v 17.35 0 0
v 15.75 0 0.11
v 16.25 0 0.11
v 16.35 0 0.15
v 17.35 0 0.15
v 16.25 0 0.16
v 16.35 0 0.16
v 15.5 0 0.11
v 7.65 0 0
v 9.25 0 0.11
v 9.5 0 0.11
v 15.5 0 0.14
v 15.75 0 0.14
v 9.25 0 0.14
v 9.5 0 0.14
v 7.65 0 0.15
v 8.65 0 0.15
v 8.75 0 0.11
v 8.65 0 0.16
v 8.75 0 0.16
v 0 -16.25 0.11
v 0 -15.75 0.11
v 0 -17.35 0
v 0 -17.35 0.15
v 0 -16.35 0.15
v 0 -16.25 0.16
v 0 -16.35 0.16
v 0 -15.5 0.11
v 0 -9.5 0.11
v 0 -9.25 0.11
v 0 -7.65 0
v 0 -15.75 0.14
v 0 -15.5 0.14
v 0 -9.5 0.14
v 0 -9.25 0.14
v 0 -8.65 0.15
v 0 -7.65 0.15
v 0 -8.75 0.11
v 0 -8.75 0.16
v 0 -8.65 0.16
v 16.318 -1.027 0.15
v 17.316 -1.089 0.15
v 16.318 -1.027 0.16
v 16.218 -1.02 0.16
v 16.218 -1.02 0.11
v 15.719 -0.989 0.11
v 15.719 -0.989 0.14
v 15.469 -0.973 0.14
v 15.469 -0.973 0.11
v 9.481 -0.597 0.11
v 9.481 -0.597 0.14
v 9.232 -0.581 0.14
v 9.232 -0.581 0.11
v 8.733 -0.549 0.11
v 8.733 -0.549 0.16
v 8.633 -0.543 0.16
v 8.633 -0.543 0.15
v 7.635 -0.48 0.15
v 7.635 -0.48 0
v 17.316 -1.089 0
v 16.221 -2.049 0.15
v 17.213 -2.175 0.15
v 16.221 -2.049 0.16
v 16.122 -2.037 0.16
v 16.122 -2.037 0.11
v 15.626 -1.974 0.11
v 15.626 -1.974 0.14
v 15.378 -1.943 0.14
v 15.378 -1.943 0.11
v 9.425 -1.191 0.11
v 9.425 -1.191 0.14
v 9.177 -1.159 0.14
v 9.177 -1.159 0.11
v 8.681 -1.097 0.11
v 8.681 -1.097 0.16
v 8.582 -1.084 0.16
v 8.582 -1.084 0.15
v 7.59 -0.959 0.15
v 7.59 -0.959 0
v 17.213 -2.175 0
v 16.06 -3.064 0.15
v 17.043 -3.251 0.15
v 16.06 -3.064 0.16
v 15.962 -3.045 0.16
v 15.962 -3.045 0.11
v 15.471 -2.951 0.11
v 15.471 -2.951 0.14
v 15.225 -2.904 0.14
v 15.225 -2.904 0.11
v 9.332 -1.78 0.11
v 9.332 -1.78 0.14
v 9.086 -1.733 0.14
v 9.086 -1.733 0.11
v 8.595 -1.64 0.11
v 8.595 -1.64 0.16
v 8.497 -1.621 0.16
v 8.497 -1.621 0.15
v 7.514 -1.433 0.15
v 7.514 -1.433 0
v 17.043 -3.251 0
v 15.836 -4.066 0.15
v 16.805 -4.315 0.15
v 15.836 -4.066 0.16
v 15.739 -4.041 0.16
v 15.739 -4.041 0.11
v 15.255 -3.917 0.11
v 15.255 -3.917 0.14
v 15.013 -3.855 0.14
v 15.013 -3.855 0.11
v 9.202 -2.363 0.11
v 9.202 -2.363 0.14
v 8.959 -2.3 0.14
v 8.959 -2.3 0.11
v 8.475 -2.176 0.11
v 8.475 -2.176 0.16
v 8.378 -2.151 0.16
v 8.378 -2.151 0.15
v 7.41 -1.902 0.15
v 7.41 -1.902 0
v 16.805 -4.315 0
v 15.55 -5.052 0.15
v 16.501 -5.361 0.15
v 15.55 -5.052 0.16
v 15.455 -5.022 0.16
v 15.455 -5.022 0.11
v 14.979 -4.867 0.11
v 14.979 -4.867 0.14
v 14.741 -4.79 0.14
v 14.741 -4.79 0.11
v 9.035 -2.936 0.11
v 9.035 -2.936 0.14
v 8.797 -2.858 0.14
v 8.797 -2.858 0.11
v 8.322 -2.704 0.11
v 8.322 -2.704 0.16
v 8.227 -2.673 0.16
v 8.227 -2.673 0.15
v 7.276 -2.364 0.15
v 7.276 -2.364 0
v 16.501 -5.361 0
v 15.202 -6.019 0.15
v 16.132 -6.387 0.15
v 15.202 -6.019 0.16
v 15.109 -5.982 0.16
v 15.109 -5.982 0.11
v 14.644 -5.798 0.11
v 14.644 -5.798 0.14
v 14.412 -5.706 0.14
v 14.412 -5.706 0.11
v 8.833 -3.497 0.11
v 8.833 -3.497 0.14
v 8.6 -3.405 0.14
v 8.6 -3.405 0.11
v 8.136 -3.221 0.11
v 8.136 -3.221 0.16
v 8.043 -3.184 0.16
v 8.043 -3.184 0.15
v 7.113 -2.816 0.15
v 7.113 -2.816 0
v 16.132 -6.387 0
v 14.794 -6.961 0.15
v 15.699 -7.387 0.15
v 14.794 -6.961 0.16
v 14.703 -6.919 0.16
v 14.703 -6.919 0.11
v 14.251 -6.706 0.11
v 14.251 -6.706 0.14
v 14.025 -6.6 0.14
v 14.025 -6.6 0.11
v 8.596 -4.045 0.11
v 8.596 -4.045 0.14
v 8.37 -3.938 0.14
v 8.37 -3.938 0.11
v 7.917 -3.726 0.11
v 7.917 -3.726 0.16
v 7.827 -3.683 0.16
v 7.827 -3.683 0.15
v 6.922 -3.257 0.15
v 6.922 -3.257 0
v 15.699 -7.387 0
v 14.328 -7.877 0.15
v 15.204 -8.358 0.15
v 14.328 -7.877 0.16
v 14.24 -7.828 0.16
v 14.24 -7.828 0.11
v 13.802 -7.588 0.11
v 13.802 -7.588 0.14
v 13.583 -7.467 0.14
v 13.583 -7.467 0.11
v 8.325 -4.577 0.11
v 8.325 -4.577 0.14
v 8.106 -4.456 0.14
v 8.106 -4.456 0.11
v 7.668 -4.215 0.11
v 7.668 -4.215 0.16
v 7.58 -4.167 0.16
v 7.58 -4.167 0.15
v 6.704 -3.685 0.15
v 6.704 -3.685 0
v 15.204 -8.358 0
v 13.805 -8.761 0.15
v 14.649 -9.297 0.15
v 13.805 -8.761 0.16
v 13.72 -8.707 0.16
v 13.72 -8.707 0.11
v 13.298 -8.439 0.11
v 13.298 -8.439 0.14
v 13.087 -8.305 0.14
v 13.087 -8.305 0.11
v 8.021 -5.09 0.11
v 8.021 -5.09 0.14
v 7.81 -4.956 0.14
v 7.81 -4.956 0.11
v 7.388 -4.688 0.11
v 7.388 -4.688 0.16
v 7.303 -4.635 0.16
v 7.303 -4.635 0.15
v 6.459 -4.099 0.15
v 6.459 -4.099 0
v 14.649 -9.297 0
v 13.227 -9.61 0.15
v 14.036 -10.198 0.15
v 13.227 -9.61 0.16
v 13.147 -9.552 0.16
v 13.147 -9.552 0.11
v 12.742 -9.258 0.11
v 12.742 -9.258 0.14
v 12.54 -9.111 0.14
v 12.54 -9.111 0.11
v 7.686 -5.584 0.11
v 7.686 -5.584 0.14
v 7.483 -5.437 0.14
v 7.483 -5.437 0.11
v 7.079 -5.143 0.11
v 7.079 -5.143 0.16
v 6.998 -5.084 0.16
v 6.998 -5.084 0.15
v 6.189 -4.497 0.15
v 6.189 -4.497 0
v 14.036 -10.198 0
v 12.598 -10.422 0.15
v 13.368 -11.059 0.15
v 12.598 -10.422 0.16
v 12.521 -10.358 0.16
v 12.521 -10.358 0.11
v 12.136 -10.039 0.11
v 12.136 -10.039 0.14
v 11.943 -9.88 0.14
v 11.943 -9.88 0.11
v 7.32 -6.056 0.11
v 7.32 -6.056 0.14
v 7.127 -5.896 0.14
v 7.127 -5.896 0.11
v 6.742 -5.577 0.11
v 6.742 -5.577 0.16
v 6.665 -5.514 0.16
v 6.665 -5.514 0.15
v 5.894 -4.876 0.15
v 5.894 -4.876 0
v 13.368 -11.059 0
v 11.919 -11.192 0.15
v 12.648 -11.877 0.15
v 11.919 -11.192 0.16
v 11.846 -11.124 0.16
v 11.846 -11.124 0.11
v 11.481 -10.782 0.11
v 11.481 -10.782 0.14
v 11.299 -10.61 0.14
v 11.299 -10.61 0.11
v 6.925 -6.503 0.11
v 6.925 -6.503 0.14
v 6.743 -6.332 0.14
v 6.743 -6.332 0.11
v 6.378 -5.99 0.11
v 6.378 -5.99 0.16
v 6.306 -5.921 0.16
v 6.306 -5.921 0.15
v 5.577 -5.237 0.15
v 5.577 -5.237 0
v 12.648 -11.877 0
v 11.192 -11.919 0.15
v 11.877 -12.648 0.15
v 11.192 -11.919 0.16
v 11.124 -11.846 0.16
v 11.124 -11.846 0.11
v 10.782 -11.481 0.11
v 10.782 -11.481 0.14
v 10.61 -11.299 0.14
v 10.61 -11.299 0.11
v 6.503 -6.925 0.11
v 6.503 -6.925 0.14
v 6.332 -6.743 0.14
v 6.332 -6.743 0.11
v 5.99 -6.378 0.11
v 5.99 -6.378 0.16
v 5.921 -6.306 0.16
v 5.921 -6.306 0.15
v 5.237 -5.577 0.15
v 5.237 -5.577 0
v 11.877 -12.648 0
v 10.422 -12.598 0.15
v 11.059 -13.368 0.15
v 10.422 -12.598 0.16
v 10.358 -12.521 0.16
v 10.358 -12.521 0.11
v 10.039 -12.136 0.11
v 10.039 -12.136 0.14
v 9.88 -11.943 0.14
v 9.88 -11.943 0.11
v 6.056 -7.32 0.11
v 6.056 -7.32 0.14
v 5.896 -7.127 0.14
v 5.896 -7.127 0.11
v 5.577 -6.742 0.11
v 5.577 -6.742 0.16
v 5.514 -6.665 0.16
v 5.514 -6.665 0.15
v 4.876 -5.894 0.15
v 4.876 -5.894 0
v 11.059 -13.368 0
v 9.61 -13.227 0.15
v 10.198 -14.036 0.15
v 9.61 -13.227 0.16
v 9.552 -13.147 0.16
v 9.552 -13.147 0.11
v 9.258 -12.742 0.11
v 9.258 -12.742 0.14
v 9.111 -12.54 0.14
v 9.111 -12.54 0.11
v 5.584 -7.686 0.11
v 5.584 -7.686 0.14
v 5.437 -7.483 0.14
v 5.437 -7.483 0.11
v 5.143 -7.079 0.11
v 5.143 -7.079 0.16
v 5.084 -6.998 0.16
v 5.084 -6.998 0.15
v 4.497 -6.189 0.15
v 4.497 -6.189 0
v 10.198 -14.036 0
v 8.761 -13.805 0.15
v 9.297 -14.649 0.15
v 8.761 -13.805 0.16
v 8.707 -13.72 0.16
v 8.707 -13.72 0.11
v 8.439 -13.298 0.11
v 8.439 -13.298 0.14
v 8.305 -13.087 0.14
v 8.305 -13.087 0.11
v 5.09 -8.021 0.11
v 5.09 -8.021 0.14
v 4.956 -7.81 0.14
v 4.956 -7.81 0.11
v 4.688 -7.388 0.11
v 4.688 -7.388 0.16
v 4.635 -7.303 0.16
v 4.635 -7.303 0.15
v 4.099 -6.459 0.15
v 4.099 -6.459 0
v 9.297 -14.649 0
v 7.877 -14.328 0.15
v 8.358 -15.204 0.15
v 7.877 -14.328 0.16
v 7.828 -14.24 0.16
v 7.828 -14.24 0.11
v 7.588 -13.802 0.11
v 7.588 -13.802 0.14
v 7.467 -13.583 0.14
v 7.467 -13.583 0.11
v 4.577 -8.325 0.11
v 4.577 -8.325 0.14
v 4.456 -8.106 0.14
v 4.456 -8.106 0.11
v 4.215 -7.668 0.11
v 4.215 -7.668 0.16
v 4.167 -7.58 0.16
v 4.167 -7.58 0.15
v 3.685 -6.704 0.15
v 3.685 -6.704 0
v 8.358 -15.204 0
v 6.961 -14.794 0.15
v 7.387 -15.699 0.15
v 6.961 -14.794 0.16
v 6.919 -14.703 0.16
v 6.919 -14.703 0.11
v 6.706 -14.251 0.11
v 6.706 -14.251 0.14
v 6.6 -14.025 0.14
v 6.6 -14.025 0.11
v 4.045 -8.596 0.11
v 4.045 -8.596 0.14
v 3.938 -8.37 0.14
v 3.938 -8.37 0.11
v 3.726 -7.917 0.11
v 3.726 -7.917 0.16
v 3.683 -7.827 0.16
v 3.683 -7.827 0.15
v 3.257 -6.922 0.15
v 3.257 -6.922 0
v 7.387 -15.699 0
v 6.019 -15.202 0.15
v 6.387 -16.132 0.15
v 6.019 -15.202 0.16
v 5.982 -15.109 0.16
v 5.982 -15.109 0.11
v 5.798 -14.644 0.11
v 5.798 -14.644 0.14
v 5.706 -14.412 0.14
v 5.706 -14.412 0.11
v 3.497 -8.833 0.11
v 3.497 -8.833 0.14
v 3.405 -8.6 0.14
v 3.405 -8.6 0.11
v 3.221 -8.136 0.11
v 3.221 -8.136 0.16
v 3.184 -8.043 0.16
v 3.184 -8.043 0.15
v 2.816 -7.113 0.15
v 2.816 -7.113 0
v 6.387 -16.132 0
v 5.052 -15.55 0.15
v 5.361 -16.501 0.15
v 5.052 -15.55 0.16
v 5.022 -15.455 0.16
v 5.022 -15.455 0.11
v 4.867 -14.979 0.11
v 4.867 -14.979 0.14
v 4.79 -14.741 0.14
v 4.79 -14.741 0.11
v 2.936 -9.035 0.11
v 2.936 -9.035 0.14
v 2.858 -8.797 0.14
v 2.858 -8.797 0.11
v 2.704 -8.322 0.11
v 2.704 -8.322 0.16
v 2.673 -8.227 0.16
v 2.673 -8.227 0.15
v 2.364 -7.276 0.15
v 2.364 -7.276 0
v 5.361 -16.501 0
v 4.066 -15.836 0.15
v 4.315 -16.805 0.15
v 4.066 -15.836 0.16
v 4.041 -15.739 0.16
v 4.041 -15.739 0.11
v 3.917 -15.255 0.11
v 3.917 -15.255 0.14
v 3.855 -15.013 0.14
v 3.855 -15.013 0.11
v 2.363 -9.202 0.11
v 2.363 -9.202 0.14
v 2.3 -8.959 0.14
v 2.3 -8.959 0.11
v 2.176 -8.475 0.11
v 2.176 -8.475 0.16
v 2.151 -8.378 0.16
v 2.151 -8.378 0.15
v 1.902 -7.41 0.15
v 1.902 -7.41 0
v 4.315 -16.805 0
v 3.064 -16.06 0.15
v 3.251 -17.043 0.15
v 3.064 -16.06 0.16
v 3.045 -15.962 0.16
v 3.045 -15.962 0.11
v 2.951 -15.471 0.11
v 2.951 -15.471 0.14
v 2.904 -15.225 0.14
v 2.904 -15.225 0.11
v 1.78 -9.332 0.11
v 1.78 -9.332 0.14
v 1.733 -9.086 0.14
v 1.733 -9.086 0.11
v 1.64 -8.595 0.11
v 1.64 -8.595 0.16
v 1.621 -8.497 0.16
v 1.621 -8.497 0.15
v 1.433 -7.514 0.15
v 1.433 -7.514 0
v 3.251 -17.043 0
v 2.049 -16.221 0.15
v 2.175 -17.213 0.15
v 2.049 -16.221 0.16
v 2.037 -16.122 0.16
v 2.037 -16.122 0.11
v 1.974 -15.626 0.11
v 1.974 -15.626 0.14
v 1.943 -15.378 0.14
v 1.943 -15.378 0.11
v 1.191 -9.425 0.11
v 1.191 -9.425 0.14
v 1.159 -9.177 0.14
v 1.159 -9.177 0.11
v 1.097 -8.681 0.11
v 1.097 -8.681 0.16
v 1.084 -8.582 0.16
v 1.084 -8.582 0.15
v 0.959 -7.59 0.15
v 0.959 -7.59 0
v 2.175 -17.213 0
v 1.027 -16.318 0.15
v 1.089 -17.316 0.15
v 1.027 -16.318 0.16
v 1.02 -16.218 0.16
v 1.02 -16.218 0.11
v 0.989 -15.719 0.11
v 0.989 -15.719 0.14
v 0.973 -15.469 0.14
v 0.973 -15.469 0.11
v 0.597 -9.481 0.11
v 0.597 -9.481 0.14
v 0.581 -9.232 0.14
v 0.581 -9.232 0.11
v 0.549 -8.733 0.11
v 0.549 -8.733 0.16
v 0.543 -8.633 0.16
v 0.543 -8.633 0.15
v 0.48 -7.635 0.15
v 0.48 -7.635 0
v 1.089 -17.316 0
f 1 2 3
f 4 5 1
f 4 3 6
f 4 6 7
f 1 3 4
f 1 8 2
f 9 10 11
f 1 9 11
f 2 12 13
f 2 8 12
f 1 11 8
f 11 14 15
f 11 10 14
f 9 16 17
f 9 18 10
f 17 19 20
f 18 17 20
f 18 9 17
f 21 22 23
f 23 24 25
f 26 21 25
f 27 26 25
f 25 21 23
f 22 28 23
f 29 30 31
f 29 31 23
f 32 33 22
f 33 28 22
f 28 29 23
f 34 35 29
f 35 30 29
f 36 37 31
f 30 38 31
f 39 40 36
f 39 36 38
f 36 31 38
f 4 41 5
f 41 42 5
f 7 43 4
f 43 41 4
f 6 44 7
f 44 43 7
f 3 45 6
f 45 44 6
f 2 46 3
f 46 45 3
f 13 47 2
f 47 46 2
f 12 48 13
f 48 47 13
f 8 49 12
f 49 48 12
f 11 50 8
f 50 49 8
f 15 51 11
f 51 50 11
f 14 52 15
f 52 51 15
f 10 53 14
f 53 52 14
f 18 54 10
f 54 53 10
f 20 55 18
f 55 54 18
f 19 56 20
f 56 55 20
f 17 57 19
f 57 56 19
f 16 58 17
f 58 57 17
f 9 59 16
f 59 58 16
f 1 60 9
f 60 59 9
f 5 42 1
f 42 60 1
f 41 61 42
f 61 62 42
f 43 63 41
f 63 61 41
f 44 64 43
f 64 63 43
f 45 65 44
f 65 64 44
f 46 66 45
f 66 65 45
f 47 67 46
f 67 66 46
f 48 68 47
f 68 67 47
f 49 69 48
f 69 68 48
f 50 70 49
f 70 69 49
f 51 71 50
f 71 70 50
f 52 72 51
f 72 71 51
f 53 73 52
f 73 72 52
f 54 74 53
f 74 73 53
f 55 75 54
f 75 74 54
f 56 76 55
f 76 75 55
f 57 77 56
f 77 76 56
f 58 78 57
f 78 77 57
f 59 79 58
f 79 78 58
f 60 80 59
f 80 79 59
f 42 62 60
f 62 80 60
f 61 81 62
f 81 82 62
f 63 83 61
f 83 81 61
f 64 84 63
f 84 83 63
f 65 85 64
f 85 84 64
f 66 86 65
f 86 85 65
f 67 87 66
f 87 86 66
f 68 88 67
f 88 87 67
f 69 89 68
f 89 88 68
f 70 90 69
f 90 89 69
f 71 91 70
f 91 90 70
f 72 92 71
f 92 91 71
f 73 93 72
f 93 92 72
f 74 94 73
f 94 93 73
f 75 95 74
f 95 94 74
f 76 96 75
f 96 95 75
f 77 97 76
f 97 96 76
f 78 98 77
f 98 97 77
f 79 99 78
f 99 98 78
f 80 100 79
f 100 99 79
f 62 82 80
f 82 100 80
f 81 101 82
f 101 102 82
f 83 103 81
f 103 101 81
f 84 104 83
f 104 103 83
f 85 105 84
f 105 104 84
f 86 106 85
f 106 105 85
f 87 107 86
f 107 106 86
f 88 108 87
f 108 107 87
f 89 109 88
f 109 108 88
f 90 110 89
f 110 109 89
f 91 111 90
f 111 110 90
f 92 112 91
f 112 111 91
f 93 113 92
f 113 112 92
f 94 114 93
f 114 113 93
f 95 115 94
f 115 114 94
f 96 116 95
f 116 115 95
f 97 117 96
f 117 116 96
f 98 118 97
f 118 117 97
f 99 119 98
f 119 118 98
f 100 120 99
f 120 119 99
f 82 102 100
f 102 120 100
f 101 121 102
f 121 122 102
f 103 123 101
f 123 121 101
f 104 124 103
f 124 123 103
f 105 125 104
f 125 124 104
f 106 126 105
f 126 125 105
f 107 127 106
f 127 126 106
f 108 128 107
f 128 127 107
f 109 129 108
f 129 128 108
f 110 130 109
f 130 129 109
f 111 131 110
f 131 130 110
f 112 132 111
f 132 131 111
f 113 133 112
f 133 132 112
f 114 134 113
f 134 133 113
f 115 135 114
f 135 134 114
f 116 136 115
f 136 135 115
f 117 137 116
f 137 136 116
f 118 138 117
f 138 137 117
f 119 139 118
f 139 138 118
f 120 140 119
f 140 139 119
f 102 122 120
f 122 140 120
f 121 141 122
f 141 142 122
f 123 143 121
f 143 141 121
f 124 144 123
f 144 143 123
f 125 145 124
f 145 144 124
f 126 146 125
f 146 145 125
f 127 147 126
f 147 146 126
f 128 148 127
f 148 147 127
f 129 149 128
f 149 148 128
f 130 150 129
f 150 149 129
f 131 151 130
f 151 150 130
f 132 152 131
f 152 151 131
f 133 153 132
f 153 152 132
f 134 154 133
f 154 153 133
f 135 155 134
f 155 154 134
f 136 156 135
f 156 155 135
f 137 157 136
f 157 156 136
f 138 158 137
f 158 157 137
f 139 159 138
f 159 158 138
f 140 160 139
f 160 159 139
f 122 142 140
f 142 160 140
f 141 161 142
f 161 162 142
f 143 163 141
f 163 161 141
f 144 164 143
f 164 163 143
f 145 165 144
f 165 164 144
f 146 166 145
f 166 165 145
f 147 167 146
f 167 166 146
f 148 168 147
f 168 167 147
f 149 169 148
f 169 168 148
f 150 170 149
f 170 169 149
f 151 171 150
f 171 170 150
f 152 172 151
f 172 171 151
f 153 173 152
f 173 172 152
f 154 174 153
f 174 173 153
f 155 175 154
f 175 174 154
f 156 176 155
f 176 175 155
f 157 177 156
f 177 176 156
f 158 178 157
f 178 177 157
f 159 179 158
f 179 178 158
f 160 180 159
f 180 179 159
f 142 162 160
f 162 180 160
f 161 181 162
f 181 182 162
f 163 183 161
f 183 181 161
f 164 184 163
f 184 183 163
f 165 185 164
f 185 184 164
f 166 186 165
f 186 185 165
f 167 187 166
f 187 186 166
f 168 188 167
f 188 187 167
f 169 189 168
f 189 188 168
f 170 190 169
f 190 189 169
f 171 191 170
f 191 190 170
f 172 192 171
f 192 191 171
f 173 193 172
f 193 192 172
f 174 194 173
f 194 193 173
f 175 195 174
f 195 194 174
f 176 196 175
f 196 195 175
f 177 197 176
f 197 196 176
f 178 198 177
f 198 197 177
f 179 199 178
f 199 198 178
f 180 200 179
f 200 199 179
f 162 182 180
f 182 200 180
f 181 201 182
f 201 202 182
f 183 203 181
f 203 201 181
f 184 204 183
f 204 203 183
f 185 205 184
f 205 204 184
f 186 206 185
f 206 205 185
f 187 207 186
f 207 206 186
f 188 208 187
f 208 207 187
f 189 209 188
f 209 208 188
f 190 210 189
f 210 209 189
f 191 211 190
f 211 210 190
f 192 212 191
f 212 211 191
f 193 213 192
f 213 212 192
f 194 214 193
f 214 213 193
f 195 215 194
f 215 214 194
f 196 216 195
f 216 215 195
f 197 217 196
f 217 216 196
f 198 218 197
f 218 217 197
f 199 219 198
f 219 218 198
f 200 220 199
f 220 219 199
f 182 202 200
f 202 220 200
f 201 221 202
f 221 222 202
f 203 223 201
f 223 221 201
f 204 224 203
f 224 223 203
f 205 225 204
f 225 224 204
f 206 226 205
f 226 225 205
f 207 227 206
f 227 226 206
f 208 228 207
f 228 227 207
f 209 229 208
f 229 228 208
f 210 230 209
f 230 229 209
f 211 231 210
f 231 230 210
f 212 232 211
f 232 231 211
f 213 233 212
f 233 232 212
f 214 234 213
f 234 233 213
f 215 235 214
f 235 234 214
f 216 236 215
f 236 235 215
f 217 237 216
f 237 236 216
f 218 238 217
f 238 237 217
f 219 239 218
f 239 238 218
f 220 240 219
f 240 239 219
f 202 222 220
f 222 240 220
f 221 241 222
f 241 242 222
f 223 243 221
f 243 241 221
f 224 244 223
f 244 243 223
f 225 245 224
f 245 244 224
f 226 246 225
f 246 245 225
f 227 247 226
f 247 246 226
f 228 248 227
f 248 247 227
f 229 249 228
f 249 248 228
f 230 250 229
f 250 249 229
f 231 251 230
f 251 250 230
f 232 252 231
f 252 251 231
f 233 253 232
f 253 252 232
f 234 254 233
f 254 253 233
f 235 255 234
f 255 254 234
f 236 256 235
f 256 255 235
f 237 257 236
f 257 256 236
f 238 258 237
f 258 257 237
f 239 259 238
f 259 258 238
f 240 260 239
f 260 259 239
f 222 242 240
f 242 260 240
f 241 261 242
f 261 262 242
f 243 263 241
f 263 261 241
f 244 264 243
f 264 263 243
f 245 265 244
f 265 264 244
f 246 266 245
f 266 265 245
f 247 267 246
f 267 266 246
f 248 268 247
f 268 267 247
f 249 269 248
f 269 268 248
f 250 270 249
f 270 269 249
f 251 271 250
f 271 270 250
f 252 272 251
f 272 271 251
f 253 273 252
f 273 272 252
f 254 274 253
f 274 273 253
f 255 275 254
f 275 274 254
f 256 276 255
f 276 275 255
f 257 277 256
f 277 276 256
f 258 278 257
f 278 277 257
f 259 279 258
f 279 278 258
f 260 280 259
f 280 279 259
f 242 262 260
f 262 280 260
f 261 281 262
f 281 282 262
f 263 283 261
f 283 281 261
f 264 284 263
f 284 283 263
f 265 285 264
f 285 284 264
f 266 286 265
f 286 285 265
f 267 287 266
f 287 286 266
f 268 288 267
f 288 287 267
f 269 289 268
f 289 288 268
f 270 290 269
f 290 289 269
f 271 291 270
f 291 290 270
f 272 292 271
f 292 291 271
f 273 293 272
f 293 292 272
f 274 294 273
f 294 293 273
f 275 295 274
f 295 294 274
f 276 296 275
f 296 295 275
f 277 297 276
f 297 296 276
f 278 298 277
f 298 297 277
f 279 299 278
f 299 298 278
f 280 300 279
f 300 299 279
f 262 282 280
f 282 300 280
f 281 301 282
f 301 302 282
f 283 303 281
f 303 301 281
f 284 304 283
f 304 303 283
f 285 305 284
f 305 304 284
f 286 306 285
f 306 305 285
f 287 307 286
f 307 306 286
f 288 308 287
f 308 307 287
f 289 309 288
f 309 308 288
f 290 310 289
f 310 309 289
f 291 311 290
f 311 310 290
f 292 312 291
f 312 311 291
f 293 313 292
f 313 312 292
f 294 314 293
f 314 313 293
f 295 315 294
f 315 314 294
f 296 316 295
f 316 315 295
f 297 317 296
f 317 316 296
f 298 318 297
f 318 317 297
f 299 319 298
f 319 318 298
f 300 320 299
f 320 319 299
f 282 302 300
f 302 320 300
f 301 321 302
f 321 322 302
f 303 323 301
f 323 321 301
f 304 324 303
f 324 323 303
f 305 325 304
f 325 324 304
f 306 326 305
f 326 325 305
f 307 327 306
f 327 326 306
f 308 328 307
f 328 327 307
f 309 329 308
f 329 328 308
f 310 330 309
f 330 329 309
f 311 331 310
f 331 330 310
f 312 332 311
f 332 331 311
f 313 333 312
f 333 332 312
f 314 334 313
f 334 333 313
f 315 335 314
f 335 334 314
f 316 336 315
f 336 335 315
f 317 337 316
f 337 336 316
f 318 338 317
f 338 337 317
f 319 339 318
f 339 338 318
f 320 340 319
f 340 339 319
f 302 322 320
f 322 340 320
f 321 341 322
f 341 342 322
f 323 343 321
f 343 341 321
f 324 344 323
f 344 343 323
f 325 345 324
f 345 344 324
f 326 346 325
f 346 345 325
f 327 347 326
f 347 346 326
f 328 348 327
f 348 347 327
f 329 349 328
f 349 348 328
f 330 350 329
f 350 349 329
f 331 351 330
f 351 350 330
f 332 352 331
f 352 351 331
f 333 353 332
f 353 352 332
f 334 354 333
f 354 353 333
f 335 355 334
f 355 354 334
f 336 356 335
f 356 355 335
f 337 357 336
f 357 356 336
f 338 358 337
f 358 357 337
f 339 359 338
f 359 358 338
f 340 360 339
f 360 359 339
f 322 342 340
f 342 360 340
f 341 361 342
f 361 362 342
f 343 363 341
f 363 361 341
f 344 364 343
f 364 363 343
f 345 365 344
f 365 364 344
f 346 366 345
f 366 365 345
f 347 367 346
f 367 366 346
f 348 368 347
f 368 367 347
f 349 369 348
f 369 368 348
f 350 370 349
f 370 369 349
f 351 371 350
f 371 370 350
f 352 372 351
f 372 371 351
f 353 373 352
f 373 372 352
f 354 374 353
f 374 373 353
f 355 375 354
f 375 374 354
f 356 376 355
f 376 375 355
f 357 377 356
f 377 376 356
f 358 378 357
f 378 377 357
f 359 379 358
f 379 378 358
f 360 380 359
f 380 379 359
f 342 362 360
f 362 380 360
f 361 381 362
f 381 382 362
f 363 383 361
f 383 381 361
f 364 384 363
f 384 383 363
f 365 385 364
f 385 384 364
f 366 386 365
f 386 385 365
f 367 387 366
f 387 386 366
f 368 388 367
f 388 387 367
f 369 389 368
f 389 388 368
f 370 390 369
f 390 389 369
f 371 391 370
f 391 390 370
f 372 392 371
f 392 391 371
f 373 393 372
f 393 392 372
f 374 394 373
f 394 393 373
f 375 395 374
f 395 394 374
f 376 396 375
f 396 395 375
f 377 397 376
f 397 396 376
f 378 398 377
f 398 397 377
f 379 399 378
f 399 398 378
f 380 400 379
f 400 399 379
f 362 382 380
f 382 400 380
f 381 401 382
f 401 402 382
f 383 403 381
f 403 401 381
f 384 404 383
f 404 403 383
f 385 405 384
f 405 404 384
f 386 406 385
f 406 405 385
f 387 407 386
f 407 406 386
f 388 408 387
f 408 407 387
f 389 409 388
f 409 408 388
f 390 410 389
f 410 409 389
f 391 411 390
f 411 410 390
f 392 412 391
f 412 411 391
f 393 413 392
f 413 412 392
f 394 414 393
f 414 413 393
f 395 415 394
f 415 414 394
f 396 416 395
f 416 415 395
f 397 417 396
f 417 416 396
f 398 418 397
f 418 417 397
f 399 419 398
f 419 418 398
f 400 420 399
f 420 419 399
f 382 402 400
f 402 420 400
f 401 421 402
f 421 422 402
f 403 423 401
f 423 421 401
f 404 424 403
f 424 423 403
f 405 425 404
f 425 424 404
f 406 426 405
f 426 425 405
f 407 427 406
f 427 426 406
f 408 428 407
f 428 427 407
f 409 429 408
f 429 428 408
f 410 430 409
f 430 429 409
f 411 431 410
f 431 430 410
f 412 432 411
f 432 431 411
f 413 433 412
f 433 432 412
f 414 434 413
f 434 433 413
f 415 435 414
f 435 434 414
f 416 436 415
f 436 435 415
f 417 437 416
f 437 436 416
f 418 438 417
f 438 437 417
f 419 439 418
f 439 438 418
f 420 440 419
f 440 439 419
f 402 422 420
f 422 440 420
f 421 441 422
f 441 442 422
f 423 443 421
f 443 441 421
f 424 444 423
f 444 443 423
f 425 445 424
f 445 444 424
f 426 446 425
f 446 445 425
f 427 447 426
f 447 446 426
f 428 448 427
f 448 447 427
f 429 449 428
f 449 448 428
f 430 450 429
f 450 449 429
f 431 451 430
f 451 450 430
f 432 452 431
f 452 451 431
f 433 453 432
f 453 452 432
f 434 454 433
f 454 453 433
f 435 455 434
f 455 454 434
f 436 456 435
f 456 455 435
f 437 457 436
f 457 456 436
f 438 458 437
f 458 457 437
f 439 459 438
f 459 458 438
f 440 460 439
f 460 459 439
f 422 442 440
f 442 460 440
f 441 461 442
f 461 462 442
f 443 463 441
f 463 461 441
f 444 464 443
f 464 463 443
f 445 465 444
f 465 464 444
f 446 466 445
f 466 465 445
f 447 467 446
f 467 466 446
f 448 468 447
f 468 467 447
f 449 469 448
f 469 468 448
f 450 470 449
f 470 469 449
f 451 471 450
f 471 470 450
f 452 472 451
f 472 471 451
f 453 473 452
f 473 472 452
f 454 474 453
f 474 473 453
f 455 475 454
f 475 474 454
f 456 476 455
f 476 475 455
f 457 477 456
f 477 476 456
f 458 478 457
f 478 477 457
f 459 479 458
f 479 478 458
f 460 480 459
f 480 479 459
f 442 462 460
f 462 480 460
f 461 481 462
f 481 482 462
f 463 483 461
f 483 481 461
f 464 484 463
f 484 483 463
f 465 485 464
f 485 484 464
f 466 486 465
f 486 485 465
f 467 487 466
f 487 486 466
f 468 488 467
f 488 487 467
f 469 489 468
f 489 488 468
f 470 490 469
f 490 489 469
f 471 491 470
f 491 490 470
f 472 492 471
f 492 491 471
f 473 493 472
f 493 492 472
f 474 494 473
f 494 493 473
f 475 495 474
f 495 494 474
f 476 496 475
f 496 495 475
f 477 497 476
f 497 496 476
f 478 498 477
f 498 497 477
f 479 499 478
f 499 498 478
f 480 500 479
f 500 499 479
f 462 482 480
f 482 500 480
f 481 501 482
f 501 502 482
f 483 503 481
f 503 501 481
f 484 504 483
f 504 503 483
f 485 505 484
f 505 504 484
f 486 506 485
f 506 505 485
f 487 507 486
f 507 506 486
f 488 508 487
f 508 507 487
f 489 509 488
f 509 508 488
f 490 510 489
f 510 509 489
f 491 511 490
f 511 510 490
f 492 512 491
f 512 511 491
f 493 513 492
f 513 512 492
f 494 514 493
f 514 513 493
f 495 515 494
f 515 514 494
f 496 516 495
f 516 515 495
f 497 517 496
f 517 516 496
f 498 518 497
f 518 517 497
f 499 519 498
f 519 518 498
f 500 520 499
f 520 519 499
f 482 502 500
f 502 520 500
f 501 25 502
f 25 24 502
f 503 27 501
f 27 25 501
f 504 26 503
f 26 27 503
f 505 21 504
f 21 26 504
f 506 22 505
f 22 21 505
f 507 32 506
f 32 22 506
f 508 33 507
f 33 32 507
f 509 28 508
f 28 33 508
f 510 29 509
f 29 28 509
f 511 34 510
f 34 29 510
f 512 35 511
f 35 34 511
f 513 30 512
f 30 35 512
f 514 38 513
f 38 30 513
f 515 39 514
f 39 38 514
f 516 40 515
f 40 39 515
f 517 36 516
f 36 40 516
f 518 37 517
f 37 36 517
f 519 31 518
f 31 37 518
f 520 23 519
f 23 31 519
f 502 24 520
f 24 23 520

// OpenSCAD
//general
meter = 1;
cm = meter / 100;

module generateStreetProfile(total_width, line_width, line_left_amount, line_right_amount, sidewalk_width, sidewalk_right, sidewalk_left, bike_width, bike_left, bike_right, bike_seperator_width, bike_seperator_left_amount, bike_seperator_right_amount, curb_width, curb_left, curb_right, gen_h) {
    // Predefined values (changable)
    meter = 1;
    cm = meter / 100;
    infinite = 1 * total_width;
    sidewalk_height = gen_h * 3 / 4;
    curb_height = sidewalk_height + 1 * cm;
    road_height = curb_height - 5 * cm;
    bike_seperator_height = road_height + 3 * cm;
    bike_height = road_height;

    // Magic calculations
    line_location = 1/2 * total_width - line_width * line_left_amount;
    line_totalwidth = line_width * (line_left_amount + line_right_amount);
    bike_seperator_totalwidth = bike_seperator_width * (bike_seperator_left_amount + bike_seperator_right_amount) + line_totalwidth;
    bike_seperator_location = line_location - bike_seperator_left_amount * bike_seperator_width;
    bike_totalwidth = bike_width * (bike_left + bike_right) + bike_seperator_totalwidth;
    bike_location = bike_seperator_location - bike_width * bike_left;
    curb_totalwidth = (curb_left+curb_right) * curb_width + bike_totalwidth;
    curb_location = bike_location - curb_width * curb_left;
    sidewalk_totalwidth = (sidewalk_right + sidewalk_left) * sidewalk_width + curb_totalwidth;
    sidewalk_location = curb_location - sidewalk_width * sidewalk_left;

    difference() {
        // Generating the raw street from width
        square([total_width, gen_h]);
    
        // Driving lane
        translate([line_location, road_height, 0]) {
            square([line_totalwidth, infinite]);
        }
    
        // Bike separator
        translate([bike_seperator_location, bike_seperator_height, 0]) {
            square([bike_seperator_totalwidth, infinite]);
        }
    
        // Bike lane left / right
        difference() {
            translate([bike_location, bike_height, 0]) {
                square([bike_totalwidth, infinite]);
            }
            // Exclude the bike separator out of the two
            translate([bike_seperator_location, 0, 0]) {
                square([bike_seperator_totalwidth, infinite]);
            }
        }
    
        // Curb
        translate([curb_location, curb_height, 0]) {
            square([curb_totalwidth, infinite]);
        }

        // Sidewalk
        difference() {
            translate([sidewalk_location, sidewalk_height, 0]) {
                square([sidewalk_totalwidth, infinite]);
            }
        
            // Curb
            translate([curb_location, 0, 0]) {
                square([curb_totalwidth, infinite]);
            }
        }
        
        //remove rest
        difference() {
            square([total_width, infinite]);
            translate([sidewalk_location, 0, 0]) {
                square([sidewalk_totalwidth, infinite]);
            }
        }
    }
}



rotate_extrude(angle=-90,convexity = 10, $fn = 100)
{
    generateStreetProfile(
        25 * meter, // total_width
        3 * meter,  // line_width
        1,          // line_left_amount
        1,          // line_right_amount
        1 * meter,  // sidewalk_width
        1,          // sidewalk_right
        1,          // sidewalk_left
        1/2 * meter, // bike_width
        1,          // bike_left
        1,          // bike_right
        1/4 * meter, // bike_seperator_width
        1,          // bike_seperator_left_amount
        1,          // bike_seperator_right_amount
        10 * cm,     // curb_width
        1,          //curb_left
        1,          //curb_right
        20 * cm     // gen_h
    );
}
